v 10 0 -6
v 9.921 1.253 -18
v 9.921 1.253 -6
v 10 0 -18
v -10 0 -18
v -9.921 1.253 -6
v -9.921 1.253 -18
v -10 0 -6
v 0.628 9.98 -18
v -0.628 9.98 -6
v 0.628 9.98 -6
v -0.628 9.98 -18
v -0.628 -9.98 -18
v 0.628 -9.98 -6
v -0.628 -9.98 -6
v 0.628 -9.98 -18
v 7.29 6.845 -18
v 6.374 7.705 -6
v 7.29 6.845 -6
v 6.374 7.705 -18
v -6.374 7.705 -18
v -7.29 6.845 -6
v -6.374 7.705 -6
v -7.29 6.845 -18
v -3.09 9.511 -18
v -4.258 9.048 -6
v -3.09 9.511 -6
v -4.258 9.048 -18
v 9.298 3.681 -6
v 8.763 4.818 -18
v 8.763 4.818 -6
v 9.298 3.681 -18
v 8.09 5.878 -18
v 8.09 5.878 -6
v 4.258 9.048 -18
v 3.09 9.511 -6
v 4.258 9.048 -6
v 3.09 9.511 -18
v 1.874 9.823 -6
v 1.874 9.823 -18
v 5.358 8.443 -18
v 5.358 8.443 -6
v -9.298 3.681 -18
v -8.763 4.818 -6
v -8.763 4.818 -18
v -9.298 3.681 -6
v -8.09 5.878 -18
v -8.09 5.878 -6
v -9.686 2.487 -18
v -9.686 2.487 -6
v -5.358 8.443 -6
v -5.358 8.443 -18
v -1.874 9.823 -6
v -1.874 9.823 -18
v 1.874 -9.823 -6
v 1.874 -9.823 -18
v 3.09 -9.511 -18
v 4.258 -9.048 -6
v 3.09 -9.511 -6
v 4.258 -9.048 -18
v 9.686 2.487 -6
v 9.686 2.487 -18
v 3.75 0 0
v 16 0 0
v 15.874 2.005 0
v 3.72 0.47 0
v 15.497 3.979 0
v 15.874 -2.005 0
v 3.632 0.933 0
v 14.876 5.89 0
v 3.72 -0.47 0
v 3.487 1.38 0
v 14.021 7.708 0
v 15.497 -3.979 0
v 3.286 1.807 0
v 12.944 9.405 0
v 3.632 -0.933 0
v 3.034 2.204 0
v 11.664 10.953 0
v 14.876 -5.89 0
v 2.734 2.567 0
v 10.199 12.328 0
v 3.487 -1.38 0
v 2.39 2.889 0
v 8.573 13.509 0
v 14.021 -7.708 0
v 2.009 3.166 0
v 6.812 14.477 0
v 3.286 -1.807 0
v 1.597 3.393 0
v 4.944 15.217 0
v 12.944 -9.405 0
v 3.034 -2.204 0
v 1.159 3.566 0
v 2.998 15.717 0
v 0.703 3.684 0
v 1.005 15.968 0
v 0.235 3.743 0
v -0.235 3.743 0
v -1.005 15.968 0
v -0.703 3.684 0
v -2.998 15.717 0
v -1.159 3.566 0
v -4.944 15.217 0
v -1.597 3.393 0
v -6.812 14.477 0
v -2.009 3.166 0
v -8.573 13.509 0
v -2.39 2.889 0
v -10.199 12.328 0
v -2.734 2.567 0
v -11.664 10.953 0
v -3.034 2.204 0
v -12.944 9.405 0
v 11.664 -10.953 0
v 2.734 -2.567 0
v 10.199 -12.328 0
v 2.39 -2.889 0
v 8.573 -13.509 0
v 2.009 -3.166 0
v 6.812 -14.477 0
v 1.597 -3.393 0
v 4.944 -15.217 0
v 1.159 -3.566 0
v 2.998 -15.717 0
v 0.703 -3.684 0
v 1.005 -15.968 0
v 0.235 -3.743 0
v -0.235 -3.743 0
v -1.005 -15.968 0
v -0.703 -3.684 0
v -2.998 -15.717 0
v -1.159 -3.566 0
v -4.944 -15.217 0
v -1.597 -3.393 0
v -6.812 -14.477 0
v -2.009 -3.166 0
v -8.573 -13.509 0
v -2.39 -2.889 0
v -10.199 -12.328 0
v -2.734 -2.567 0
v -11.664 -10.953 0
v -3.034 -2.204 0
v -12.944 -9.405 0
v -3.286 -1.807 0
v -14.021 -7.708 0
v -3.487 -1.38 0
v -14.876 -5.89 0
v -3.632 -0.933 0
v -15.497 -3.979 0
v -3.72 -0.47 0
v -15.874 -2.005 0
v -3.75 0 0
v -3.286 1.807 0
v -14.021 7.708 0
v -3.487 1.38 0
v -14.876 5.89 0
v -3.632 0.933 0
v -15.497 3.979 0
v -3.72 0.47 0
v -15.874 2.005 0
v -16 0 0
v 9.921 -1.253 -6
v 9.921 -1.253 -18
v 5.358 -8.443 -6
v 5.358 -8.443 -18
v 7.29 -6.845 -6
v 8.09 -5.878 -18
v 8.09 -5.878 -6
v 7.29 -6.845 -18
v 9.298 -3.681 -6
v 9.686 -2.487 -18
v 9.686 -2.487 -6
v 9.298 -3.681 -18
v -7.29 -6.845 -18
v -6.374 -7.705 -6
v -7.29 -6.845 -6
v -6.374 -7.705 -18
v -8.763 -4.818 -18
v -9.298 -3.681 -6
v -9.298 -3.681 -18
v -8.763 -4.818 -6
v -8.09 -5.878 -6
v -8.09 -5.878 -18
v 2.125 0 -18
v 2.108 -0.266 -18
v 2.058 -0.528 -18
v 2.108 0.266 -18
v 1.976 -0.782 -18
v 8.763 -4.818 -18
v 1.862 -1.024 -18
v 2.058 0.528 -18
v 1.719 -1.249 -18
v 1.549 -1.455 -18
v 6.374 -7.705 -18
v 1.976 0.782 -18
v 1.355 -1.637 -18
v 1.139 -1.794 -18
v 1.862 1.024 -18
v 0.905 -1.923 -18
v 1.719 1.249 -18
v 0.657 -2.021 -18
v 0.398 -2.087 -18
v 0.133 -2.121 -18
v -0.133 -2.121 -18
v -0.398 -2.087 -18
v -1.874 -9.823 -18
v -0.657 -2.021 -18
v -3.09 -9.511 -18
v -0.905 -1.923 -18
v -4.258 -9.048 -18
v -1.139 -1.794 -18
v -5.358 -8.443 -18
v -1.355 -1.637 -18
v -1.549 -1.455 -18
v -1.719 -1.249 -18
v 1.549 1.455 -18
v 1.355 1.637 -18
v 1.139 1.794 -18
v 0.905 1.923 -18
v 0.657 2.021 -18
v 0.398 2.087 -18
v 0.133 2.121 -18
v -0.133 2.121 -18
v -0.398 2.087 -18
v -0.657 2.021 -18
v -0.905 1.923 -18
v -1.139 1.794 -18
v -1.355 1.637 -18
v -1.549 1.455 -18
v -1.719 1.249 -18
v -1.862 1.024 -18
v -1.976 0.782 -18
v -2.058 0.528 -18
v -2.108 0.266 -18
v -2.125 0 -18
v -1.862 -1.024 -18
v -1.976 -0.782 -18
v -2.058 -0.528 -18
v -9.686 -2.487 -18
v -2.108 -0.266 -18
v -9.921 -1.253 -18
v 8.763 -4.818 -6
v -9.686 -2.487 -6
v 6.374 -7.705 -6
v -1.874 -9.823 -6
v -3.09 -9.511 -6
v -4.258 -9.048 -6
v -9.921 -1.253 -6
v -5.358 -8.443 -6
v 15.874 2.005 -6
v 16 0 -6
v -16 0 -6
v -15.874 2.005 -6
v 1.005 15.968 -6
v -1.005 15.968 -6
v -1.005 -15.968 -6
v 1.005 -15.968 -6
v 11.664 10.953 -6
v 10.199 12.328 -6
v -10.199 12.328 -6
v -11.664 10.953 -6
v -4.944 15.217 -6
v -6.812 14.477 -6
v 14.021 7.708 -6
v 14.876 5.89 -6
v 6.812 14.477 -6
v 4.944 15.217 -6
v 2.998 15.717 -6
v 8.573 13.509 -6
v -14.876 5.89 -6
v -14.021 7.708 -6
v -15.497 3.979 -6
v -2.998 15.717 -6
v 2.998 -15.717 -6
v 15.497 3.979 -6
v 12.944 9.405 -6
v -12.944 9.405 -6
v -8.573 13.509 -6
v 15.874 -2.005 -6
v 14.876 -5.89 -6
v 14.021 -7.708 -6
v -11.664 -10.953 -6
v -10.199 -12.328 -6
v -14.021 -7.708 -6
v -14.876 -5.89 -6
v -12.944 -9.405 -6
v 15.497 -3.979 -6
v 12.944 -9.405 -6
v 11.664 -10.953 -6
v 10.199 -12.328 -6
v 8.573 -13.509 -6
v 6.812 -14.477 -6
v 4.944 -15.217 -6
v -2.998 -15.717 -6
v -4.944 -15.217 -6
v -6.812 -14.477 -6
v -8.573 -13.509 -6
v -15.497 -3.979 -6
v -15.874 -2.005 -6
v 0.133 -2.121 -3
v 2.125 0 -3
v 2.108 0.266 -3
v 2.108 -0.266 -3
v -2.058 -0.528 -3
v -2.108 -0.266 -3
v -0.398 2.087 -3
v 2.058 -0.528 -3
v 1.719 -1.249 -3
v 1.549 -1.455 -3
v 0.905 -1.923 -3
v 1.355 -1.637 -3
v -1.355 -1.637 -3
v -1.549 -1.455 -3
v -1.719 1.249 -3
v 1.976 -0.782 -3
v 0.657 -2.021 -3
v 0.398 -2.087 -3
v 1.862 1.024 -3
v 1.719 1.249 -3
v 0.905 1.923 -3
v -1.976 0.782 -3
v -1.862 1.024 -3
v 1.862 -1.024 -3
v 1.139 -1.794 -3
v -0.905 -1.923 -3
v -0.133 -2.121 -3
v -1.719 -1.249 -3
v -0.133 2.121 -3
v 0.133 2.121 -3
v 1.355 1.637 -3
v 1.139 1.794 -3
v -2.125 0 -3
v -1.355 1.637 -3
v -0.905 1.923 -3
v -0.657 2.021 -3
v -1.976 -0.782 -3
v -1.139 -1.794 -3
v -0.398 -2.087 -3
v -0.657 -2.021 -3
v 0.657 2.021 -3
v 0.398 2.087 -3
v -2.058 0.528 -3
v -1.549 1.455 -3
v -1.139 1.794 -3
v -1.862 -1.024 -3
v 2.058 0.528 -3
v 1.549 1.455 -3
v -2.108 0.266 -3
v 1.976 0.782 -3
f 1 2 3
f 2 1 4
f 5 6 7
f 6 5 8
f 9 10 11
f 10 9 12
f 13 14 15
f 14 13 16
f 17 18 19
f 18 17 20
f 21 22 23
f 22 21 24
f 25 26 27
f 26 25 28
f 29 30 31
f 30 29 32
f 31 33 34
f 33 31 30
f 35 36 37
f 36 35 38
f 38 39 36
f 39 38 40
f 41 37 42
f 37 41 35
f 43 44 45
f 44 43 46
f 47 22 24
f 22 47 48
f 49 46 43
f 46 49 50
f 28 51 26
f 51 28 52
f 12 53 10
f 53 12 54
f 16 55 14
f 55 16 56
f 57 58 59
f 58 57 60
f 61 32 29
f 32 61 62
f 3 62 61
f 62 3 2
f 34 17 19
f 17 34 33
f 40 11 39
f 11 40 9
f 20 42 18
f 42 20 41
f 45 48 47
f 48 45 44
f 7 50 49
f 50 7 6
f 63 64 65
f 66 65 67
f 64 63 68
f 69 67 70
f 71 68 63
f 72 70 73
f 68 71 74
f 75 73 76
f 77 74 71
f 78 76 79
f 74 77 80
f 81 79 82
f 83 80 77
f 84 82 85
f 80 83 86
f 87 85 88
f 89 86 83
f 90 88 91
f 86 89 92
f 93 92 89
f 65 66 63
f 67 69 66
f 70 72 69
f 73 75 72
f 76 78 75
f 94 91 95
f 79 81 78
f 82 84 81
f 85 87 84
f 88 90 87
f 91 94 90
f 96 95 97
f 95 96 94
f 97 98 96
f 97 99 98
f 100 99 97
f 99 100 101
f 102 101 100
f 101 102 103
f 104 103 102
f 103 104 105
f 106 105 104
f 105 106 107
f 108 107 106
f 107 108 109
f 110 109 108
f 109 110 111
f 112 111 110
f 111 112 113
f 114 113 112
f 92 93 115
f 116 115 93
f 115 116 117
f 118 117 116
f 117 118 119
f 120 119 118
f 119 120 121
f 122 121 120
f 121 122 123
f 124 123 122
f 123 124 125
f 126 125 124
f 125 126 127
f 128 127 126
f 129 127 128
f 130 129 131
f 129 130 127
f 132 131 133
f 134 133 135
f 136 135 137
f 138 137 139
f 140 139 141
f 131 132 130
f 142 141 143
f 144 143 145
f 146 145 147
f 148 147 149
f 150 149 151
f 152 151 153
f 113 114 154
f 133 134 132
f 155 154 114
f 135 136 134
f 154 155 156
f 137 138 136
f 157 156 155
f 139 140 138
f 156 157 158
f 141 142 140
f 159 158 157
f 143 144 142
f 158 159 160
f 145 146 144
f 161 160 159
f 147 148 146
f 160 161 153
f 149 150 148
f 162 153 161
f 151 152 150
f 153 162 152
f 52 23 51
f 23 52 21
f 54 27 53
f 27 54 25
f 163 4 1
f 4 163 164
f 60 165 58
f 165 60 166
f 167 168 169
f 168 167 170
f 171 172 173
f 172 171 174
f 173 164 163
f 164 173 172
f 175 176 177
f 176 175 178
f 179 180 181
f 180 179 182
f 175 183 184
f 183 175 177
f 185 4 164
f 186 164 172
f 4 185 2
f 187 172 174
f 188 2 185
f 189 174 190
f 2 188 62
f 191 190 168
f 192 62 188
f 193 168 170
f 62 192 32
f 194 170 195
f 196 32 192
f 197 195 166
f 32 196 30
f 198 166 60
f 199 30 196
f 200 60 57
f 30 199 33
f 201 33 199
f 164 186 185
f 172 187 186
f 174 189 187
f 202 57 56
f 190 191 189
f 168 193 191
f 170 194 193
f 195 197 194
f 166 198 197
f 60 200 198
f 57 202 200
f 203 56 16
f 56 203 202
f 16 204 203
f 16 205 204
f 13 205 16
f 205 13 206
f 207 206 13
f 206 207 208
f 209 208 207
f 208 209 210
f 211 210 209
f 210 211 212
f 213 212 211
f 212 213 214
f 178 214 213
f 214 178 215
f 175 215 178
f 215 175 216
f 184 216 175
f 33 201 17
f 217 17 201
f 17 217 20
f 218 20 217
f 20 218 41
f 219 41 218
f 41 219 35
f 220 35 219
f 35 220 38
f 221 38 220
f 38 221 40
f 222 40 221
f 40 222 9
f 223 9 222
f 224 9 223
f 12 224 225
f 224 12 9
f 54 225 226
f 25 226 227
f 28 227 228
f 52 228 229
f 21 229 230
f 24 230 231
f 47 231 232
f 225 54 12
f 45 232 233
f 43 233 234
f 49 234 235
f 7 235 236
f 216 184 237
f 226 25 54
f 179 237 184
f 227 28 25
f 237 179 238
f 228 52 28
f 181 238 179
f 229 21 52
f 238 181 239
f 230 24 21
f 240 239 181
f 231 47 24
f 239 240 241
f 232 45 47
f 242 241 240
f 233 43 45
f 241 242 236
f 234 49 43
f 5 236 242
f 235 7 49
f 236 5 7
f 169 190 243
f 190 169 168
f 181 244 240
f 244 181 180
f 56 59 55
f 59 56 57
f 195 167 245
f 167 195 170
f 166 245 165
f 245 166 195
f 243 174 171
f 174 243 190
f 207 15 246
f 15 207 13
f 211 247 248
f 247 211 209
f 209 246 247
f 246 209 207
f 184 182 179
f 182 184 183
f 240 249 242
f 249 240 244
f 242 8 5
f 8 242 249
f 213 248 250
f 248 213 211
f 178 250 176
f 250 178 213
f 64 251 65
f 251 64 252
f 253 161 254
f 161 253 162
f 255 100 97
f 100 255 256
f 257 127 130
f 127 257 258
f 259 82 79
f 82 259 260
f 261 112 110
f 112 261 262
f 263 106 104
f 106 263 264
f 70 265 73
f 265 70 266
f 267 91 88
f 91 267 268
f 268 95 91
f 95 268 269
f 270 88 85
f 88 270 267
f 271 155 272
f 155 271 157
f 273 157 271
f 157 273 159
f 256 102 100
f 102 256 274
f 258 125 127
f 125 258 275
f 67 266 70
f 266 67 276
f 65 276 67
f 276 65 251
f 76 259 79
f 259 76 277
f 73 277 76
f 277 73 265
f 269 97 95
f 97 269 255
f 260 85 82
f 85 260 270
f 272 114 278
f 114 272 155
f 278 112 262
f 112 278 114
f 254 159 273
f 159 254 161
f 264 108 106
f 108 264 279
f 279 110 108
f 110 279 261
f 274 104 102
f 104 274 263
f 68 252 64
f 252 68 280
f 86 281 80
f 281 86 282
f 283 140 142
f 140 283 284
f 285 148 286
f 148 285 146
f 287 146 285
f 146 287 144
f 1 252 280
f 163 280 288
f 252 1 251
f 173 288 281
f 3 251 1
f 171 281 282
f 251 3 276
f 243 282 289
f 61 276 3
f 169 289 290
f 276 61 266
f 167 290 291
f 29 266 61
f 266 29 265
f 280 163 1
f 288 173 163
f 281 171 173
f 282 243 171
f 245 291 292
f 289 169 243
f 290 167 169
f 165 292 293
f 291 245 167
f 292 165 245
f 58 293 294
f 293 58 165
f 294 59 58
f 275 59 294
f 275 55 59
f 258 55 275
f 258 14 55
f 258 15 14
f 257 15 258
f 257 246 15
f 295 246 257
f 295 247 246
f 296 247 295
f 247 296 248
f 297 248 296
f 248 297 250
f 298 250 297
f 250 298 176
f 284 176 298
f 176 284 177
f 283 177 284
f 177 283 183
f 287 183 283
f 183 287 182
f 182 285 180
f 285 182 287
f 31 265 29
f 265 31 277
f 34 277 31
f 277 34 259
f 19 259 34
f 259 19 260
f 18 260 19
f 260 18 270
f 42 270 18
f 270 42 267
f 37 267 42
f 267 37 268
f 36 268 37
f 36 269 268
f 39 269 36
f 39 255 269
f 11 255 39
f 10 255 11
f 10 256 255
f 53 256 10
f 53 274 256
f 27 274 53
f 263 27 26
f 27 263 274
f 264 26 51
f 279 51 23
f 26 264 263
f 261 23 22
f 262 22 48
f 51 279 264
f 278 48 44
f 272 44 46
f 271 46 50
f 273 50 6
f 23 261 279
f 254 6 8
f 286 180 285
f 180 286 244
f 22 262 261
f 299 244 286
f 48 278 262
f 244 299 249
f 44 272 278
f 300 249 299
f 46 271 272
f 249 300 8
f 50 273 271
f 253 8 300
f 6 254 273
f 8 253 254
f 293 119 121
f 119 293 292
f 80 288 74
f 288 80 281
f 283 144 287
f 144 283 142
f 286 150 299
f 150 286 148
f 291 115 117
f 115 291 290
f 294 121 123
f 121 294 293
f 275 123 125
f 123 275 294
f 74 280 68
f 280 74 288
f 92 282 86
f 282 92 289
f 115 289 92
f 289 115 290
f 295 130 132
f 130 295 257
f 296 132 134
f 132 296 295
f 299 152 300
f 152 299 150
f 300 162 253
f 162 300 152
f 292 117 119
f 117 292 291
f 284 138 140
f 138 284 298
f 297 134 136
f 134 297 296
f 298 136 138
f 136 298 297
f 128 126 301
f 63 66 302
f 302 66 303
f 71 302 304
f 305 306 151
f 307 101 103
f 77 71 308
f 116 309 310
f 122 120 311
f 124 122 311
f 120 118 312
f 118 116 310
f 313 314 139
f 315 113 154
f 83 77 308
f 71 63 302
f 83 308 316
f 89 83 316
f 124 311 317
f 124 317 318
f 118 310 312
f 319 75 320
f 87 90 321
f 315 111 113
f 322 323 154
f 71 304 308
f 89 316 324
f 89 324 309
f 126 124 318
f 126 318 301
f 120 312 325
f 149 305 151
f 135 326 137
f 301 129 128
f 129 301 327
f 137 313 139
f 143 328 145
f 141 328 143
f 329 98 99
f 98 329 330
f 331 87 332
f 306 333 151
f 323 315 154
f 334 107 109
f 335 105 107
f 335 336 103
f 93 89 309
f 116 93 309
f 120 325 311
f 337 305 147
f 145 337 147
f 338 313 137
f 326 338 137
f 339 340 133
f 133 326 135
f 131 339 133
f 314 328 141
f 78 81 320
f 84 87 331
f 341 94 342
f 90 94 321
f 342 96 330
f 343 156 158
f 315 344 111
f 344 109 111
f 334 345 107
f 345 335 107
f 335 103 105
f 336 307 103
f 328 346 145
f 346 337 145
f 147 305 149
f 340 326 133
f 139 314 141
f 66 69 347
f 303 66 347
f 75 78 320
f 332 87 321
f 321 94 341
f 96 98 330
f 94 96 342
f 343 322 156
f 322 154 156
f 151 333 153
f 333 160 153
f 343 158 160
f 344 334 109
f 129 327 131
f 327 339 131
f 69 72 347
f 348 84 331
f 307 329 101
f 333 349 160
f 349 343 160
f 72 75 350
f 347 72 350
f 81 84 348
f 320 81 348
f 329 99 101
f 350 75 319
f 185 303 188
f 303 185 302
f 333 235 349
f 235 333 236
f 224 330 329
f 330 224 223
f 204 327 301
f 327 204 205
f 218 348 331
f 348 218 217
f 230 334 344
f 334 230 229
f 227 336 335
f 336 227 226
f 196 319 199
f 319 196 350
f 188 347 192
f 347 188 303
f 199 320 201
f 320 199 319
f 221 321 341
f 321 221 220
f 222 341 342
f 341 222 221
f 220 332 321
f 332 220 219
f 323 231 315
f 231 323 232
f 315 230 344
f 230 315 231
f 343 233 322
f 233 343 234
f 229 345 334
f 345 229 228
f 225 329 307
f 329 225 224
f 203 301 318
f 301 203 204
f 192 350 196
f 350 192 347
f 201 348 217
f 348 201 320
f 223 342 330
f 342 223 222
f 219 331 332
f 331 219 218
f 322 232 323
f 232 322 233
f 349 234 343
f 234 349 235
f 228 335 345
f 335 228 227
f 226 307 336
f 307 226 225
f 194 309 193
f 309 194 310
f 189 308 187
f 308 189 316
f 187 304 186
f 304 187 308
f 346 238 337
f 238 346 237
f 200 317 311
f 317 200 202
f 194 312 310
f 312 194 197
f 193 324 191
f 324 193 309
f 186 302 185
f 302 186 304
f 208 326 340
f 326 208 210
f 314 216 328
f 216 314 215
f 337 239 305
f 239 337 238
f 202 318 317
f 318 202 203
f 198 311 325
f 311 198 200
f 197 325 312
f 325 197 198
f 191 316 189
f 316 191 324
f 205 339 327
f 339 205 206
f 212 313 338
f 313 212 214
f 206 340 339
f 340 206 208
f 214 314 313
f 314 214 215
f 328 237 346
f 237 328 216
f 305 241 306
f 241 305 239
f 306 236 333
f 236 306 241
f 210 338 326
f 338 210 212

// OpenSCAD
$fn = 50;


difference() {
	union() {
		translate(v = [0, 0, -18.0000000000]) {
			cylinder(h = 18, r = 10.0000000000);
		}
		translate(v = [0, 0, -6.0000000000]) {
			cylinder(h = 6, r = 16.0000000000);
		}
	}
	union() {
		translate(v = [0, 0, 0]) {
			rotate(a = [0, 0, 0]) {
				difference() {
					union() {
						#translate(v = [0, 0, -18.0000000000]) {
							cylinder(h = 18, r = 2.0000000000);
						}
						#translate(v = [0, 0, -3]) {
							cylinder(h = 3, r1 = 2.1250000000, r2 = 3.7500000000);
						}
						#translate(v = [0, 0, -18.0000000000]) {
							cylinder(h = 18, r = 2.1250000000);
						}
						#translate(v = [0, 0, -18.0000000000]) {
							cylinder(h = 18, r = 2.0000000000);
						}
					}
					union();
				}
			}
		}
	}
}
